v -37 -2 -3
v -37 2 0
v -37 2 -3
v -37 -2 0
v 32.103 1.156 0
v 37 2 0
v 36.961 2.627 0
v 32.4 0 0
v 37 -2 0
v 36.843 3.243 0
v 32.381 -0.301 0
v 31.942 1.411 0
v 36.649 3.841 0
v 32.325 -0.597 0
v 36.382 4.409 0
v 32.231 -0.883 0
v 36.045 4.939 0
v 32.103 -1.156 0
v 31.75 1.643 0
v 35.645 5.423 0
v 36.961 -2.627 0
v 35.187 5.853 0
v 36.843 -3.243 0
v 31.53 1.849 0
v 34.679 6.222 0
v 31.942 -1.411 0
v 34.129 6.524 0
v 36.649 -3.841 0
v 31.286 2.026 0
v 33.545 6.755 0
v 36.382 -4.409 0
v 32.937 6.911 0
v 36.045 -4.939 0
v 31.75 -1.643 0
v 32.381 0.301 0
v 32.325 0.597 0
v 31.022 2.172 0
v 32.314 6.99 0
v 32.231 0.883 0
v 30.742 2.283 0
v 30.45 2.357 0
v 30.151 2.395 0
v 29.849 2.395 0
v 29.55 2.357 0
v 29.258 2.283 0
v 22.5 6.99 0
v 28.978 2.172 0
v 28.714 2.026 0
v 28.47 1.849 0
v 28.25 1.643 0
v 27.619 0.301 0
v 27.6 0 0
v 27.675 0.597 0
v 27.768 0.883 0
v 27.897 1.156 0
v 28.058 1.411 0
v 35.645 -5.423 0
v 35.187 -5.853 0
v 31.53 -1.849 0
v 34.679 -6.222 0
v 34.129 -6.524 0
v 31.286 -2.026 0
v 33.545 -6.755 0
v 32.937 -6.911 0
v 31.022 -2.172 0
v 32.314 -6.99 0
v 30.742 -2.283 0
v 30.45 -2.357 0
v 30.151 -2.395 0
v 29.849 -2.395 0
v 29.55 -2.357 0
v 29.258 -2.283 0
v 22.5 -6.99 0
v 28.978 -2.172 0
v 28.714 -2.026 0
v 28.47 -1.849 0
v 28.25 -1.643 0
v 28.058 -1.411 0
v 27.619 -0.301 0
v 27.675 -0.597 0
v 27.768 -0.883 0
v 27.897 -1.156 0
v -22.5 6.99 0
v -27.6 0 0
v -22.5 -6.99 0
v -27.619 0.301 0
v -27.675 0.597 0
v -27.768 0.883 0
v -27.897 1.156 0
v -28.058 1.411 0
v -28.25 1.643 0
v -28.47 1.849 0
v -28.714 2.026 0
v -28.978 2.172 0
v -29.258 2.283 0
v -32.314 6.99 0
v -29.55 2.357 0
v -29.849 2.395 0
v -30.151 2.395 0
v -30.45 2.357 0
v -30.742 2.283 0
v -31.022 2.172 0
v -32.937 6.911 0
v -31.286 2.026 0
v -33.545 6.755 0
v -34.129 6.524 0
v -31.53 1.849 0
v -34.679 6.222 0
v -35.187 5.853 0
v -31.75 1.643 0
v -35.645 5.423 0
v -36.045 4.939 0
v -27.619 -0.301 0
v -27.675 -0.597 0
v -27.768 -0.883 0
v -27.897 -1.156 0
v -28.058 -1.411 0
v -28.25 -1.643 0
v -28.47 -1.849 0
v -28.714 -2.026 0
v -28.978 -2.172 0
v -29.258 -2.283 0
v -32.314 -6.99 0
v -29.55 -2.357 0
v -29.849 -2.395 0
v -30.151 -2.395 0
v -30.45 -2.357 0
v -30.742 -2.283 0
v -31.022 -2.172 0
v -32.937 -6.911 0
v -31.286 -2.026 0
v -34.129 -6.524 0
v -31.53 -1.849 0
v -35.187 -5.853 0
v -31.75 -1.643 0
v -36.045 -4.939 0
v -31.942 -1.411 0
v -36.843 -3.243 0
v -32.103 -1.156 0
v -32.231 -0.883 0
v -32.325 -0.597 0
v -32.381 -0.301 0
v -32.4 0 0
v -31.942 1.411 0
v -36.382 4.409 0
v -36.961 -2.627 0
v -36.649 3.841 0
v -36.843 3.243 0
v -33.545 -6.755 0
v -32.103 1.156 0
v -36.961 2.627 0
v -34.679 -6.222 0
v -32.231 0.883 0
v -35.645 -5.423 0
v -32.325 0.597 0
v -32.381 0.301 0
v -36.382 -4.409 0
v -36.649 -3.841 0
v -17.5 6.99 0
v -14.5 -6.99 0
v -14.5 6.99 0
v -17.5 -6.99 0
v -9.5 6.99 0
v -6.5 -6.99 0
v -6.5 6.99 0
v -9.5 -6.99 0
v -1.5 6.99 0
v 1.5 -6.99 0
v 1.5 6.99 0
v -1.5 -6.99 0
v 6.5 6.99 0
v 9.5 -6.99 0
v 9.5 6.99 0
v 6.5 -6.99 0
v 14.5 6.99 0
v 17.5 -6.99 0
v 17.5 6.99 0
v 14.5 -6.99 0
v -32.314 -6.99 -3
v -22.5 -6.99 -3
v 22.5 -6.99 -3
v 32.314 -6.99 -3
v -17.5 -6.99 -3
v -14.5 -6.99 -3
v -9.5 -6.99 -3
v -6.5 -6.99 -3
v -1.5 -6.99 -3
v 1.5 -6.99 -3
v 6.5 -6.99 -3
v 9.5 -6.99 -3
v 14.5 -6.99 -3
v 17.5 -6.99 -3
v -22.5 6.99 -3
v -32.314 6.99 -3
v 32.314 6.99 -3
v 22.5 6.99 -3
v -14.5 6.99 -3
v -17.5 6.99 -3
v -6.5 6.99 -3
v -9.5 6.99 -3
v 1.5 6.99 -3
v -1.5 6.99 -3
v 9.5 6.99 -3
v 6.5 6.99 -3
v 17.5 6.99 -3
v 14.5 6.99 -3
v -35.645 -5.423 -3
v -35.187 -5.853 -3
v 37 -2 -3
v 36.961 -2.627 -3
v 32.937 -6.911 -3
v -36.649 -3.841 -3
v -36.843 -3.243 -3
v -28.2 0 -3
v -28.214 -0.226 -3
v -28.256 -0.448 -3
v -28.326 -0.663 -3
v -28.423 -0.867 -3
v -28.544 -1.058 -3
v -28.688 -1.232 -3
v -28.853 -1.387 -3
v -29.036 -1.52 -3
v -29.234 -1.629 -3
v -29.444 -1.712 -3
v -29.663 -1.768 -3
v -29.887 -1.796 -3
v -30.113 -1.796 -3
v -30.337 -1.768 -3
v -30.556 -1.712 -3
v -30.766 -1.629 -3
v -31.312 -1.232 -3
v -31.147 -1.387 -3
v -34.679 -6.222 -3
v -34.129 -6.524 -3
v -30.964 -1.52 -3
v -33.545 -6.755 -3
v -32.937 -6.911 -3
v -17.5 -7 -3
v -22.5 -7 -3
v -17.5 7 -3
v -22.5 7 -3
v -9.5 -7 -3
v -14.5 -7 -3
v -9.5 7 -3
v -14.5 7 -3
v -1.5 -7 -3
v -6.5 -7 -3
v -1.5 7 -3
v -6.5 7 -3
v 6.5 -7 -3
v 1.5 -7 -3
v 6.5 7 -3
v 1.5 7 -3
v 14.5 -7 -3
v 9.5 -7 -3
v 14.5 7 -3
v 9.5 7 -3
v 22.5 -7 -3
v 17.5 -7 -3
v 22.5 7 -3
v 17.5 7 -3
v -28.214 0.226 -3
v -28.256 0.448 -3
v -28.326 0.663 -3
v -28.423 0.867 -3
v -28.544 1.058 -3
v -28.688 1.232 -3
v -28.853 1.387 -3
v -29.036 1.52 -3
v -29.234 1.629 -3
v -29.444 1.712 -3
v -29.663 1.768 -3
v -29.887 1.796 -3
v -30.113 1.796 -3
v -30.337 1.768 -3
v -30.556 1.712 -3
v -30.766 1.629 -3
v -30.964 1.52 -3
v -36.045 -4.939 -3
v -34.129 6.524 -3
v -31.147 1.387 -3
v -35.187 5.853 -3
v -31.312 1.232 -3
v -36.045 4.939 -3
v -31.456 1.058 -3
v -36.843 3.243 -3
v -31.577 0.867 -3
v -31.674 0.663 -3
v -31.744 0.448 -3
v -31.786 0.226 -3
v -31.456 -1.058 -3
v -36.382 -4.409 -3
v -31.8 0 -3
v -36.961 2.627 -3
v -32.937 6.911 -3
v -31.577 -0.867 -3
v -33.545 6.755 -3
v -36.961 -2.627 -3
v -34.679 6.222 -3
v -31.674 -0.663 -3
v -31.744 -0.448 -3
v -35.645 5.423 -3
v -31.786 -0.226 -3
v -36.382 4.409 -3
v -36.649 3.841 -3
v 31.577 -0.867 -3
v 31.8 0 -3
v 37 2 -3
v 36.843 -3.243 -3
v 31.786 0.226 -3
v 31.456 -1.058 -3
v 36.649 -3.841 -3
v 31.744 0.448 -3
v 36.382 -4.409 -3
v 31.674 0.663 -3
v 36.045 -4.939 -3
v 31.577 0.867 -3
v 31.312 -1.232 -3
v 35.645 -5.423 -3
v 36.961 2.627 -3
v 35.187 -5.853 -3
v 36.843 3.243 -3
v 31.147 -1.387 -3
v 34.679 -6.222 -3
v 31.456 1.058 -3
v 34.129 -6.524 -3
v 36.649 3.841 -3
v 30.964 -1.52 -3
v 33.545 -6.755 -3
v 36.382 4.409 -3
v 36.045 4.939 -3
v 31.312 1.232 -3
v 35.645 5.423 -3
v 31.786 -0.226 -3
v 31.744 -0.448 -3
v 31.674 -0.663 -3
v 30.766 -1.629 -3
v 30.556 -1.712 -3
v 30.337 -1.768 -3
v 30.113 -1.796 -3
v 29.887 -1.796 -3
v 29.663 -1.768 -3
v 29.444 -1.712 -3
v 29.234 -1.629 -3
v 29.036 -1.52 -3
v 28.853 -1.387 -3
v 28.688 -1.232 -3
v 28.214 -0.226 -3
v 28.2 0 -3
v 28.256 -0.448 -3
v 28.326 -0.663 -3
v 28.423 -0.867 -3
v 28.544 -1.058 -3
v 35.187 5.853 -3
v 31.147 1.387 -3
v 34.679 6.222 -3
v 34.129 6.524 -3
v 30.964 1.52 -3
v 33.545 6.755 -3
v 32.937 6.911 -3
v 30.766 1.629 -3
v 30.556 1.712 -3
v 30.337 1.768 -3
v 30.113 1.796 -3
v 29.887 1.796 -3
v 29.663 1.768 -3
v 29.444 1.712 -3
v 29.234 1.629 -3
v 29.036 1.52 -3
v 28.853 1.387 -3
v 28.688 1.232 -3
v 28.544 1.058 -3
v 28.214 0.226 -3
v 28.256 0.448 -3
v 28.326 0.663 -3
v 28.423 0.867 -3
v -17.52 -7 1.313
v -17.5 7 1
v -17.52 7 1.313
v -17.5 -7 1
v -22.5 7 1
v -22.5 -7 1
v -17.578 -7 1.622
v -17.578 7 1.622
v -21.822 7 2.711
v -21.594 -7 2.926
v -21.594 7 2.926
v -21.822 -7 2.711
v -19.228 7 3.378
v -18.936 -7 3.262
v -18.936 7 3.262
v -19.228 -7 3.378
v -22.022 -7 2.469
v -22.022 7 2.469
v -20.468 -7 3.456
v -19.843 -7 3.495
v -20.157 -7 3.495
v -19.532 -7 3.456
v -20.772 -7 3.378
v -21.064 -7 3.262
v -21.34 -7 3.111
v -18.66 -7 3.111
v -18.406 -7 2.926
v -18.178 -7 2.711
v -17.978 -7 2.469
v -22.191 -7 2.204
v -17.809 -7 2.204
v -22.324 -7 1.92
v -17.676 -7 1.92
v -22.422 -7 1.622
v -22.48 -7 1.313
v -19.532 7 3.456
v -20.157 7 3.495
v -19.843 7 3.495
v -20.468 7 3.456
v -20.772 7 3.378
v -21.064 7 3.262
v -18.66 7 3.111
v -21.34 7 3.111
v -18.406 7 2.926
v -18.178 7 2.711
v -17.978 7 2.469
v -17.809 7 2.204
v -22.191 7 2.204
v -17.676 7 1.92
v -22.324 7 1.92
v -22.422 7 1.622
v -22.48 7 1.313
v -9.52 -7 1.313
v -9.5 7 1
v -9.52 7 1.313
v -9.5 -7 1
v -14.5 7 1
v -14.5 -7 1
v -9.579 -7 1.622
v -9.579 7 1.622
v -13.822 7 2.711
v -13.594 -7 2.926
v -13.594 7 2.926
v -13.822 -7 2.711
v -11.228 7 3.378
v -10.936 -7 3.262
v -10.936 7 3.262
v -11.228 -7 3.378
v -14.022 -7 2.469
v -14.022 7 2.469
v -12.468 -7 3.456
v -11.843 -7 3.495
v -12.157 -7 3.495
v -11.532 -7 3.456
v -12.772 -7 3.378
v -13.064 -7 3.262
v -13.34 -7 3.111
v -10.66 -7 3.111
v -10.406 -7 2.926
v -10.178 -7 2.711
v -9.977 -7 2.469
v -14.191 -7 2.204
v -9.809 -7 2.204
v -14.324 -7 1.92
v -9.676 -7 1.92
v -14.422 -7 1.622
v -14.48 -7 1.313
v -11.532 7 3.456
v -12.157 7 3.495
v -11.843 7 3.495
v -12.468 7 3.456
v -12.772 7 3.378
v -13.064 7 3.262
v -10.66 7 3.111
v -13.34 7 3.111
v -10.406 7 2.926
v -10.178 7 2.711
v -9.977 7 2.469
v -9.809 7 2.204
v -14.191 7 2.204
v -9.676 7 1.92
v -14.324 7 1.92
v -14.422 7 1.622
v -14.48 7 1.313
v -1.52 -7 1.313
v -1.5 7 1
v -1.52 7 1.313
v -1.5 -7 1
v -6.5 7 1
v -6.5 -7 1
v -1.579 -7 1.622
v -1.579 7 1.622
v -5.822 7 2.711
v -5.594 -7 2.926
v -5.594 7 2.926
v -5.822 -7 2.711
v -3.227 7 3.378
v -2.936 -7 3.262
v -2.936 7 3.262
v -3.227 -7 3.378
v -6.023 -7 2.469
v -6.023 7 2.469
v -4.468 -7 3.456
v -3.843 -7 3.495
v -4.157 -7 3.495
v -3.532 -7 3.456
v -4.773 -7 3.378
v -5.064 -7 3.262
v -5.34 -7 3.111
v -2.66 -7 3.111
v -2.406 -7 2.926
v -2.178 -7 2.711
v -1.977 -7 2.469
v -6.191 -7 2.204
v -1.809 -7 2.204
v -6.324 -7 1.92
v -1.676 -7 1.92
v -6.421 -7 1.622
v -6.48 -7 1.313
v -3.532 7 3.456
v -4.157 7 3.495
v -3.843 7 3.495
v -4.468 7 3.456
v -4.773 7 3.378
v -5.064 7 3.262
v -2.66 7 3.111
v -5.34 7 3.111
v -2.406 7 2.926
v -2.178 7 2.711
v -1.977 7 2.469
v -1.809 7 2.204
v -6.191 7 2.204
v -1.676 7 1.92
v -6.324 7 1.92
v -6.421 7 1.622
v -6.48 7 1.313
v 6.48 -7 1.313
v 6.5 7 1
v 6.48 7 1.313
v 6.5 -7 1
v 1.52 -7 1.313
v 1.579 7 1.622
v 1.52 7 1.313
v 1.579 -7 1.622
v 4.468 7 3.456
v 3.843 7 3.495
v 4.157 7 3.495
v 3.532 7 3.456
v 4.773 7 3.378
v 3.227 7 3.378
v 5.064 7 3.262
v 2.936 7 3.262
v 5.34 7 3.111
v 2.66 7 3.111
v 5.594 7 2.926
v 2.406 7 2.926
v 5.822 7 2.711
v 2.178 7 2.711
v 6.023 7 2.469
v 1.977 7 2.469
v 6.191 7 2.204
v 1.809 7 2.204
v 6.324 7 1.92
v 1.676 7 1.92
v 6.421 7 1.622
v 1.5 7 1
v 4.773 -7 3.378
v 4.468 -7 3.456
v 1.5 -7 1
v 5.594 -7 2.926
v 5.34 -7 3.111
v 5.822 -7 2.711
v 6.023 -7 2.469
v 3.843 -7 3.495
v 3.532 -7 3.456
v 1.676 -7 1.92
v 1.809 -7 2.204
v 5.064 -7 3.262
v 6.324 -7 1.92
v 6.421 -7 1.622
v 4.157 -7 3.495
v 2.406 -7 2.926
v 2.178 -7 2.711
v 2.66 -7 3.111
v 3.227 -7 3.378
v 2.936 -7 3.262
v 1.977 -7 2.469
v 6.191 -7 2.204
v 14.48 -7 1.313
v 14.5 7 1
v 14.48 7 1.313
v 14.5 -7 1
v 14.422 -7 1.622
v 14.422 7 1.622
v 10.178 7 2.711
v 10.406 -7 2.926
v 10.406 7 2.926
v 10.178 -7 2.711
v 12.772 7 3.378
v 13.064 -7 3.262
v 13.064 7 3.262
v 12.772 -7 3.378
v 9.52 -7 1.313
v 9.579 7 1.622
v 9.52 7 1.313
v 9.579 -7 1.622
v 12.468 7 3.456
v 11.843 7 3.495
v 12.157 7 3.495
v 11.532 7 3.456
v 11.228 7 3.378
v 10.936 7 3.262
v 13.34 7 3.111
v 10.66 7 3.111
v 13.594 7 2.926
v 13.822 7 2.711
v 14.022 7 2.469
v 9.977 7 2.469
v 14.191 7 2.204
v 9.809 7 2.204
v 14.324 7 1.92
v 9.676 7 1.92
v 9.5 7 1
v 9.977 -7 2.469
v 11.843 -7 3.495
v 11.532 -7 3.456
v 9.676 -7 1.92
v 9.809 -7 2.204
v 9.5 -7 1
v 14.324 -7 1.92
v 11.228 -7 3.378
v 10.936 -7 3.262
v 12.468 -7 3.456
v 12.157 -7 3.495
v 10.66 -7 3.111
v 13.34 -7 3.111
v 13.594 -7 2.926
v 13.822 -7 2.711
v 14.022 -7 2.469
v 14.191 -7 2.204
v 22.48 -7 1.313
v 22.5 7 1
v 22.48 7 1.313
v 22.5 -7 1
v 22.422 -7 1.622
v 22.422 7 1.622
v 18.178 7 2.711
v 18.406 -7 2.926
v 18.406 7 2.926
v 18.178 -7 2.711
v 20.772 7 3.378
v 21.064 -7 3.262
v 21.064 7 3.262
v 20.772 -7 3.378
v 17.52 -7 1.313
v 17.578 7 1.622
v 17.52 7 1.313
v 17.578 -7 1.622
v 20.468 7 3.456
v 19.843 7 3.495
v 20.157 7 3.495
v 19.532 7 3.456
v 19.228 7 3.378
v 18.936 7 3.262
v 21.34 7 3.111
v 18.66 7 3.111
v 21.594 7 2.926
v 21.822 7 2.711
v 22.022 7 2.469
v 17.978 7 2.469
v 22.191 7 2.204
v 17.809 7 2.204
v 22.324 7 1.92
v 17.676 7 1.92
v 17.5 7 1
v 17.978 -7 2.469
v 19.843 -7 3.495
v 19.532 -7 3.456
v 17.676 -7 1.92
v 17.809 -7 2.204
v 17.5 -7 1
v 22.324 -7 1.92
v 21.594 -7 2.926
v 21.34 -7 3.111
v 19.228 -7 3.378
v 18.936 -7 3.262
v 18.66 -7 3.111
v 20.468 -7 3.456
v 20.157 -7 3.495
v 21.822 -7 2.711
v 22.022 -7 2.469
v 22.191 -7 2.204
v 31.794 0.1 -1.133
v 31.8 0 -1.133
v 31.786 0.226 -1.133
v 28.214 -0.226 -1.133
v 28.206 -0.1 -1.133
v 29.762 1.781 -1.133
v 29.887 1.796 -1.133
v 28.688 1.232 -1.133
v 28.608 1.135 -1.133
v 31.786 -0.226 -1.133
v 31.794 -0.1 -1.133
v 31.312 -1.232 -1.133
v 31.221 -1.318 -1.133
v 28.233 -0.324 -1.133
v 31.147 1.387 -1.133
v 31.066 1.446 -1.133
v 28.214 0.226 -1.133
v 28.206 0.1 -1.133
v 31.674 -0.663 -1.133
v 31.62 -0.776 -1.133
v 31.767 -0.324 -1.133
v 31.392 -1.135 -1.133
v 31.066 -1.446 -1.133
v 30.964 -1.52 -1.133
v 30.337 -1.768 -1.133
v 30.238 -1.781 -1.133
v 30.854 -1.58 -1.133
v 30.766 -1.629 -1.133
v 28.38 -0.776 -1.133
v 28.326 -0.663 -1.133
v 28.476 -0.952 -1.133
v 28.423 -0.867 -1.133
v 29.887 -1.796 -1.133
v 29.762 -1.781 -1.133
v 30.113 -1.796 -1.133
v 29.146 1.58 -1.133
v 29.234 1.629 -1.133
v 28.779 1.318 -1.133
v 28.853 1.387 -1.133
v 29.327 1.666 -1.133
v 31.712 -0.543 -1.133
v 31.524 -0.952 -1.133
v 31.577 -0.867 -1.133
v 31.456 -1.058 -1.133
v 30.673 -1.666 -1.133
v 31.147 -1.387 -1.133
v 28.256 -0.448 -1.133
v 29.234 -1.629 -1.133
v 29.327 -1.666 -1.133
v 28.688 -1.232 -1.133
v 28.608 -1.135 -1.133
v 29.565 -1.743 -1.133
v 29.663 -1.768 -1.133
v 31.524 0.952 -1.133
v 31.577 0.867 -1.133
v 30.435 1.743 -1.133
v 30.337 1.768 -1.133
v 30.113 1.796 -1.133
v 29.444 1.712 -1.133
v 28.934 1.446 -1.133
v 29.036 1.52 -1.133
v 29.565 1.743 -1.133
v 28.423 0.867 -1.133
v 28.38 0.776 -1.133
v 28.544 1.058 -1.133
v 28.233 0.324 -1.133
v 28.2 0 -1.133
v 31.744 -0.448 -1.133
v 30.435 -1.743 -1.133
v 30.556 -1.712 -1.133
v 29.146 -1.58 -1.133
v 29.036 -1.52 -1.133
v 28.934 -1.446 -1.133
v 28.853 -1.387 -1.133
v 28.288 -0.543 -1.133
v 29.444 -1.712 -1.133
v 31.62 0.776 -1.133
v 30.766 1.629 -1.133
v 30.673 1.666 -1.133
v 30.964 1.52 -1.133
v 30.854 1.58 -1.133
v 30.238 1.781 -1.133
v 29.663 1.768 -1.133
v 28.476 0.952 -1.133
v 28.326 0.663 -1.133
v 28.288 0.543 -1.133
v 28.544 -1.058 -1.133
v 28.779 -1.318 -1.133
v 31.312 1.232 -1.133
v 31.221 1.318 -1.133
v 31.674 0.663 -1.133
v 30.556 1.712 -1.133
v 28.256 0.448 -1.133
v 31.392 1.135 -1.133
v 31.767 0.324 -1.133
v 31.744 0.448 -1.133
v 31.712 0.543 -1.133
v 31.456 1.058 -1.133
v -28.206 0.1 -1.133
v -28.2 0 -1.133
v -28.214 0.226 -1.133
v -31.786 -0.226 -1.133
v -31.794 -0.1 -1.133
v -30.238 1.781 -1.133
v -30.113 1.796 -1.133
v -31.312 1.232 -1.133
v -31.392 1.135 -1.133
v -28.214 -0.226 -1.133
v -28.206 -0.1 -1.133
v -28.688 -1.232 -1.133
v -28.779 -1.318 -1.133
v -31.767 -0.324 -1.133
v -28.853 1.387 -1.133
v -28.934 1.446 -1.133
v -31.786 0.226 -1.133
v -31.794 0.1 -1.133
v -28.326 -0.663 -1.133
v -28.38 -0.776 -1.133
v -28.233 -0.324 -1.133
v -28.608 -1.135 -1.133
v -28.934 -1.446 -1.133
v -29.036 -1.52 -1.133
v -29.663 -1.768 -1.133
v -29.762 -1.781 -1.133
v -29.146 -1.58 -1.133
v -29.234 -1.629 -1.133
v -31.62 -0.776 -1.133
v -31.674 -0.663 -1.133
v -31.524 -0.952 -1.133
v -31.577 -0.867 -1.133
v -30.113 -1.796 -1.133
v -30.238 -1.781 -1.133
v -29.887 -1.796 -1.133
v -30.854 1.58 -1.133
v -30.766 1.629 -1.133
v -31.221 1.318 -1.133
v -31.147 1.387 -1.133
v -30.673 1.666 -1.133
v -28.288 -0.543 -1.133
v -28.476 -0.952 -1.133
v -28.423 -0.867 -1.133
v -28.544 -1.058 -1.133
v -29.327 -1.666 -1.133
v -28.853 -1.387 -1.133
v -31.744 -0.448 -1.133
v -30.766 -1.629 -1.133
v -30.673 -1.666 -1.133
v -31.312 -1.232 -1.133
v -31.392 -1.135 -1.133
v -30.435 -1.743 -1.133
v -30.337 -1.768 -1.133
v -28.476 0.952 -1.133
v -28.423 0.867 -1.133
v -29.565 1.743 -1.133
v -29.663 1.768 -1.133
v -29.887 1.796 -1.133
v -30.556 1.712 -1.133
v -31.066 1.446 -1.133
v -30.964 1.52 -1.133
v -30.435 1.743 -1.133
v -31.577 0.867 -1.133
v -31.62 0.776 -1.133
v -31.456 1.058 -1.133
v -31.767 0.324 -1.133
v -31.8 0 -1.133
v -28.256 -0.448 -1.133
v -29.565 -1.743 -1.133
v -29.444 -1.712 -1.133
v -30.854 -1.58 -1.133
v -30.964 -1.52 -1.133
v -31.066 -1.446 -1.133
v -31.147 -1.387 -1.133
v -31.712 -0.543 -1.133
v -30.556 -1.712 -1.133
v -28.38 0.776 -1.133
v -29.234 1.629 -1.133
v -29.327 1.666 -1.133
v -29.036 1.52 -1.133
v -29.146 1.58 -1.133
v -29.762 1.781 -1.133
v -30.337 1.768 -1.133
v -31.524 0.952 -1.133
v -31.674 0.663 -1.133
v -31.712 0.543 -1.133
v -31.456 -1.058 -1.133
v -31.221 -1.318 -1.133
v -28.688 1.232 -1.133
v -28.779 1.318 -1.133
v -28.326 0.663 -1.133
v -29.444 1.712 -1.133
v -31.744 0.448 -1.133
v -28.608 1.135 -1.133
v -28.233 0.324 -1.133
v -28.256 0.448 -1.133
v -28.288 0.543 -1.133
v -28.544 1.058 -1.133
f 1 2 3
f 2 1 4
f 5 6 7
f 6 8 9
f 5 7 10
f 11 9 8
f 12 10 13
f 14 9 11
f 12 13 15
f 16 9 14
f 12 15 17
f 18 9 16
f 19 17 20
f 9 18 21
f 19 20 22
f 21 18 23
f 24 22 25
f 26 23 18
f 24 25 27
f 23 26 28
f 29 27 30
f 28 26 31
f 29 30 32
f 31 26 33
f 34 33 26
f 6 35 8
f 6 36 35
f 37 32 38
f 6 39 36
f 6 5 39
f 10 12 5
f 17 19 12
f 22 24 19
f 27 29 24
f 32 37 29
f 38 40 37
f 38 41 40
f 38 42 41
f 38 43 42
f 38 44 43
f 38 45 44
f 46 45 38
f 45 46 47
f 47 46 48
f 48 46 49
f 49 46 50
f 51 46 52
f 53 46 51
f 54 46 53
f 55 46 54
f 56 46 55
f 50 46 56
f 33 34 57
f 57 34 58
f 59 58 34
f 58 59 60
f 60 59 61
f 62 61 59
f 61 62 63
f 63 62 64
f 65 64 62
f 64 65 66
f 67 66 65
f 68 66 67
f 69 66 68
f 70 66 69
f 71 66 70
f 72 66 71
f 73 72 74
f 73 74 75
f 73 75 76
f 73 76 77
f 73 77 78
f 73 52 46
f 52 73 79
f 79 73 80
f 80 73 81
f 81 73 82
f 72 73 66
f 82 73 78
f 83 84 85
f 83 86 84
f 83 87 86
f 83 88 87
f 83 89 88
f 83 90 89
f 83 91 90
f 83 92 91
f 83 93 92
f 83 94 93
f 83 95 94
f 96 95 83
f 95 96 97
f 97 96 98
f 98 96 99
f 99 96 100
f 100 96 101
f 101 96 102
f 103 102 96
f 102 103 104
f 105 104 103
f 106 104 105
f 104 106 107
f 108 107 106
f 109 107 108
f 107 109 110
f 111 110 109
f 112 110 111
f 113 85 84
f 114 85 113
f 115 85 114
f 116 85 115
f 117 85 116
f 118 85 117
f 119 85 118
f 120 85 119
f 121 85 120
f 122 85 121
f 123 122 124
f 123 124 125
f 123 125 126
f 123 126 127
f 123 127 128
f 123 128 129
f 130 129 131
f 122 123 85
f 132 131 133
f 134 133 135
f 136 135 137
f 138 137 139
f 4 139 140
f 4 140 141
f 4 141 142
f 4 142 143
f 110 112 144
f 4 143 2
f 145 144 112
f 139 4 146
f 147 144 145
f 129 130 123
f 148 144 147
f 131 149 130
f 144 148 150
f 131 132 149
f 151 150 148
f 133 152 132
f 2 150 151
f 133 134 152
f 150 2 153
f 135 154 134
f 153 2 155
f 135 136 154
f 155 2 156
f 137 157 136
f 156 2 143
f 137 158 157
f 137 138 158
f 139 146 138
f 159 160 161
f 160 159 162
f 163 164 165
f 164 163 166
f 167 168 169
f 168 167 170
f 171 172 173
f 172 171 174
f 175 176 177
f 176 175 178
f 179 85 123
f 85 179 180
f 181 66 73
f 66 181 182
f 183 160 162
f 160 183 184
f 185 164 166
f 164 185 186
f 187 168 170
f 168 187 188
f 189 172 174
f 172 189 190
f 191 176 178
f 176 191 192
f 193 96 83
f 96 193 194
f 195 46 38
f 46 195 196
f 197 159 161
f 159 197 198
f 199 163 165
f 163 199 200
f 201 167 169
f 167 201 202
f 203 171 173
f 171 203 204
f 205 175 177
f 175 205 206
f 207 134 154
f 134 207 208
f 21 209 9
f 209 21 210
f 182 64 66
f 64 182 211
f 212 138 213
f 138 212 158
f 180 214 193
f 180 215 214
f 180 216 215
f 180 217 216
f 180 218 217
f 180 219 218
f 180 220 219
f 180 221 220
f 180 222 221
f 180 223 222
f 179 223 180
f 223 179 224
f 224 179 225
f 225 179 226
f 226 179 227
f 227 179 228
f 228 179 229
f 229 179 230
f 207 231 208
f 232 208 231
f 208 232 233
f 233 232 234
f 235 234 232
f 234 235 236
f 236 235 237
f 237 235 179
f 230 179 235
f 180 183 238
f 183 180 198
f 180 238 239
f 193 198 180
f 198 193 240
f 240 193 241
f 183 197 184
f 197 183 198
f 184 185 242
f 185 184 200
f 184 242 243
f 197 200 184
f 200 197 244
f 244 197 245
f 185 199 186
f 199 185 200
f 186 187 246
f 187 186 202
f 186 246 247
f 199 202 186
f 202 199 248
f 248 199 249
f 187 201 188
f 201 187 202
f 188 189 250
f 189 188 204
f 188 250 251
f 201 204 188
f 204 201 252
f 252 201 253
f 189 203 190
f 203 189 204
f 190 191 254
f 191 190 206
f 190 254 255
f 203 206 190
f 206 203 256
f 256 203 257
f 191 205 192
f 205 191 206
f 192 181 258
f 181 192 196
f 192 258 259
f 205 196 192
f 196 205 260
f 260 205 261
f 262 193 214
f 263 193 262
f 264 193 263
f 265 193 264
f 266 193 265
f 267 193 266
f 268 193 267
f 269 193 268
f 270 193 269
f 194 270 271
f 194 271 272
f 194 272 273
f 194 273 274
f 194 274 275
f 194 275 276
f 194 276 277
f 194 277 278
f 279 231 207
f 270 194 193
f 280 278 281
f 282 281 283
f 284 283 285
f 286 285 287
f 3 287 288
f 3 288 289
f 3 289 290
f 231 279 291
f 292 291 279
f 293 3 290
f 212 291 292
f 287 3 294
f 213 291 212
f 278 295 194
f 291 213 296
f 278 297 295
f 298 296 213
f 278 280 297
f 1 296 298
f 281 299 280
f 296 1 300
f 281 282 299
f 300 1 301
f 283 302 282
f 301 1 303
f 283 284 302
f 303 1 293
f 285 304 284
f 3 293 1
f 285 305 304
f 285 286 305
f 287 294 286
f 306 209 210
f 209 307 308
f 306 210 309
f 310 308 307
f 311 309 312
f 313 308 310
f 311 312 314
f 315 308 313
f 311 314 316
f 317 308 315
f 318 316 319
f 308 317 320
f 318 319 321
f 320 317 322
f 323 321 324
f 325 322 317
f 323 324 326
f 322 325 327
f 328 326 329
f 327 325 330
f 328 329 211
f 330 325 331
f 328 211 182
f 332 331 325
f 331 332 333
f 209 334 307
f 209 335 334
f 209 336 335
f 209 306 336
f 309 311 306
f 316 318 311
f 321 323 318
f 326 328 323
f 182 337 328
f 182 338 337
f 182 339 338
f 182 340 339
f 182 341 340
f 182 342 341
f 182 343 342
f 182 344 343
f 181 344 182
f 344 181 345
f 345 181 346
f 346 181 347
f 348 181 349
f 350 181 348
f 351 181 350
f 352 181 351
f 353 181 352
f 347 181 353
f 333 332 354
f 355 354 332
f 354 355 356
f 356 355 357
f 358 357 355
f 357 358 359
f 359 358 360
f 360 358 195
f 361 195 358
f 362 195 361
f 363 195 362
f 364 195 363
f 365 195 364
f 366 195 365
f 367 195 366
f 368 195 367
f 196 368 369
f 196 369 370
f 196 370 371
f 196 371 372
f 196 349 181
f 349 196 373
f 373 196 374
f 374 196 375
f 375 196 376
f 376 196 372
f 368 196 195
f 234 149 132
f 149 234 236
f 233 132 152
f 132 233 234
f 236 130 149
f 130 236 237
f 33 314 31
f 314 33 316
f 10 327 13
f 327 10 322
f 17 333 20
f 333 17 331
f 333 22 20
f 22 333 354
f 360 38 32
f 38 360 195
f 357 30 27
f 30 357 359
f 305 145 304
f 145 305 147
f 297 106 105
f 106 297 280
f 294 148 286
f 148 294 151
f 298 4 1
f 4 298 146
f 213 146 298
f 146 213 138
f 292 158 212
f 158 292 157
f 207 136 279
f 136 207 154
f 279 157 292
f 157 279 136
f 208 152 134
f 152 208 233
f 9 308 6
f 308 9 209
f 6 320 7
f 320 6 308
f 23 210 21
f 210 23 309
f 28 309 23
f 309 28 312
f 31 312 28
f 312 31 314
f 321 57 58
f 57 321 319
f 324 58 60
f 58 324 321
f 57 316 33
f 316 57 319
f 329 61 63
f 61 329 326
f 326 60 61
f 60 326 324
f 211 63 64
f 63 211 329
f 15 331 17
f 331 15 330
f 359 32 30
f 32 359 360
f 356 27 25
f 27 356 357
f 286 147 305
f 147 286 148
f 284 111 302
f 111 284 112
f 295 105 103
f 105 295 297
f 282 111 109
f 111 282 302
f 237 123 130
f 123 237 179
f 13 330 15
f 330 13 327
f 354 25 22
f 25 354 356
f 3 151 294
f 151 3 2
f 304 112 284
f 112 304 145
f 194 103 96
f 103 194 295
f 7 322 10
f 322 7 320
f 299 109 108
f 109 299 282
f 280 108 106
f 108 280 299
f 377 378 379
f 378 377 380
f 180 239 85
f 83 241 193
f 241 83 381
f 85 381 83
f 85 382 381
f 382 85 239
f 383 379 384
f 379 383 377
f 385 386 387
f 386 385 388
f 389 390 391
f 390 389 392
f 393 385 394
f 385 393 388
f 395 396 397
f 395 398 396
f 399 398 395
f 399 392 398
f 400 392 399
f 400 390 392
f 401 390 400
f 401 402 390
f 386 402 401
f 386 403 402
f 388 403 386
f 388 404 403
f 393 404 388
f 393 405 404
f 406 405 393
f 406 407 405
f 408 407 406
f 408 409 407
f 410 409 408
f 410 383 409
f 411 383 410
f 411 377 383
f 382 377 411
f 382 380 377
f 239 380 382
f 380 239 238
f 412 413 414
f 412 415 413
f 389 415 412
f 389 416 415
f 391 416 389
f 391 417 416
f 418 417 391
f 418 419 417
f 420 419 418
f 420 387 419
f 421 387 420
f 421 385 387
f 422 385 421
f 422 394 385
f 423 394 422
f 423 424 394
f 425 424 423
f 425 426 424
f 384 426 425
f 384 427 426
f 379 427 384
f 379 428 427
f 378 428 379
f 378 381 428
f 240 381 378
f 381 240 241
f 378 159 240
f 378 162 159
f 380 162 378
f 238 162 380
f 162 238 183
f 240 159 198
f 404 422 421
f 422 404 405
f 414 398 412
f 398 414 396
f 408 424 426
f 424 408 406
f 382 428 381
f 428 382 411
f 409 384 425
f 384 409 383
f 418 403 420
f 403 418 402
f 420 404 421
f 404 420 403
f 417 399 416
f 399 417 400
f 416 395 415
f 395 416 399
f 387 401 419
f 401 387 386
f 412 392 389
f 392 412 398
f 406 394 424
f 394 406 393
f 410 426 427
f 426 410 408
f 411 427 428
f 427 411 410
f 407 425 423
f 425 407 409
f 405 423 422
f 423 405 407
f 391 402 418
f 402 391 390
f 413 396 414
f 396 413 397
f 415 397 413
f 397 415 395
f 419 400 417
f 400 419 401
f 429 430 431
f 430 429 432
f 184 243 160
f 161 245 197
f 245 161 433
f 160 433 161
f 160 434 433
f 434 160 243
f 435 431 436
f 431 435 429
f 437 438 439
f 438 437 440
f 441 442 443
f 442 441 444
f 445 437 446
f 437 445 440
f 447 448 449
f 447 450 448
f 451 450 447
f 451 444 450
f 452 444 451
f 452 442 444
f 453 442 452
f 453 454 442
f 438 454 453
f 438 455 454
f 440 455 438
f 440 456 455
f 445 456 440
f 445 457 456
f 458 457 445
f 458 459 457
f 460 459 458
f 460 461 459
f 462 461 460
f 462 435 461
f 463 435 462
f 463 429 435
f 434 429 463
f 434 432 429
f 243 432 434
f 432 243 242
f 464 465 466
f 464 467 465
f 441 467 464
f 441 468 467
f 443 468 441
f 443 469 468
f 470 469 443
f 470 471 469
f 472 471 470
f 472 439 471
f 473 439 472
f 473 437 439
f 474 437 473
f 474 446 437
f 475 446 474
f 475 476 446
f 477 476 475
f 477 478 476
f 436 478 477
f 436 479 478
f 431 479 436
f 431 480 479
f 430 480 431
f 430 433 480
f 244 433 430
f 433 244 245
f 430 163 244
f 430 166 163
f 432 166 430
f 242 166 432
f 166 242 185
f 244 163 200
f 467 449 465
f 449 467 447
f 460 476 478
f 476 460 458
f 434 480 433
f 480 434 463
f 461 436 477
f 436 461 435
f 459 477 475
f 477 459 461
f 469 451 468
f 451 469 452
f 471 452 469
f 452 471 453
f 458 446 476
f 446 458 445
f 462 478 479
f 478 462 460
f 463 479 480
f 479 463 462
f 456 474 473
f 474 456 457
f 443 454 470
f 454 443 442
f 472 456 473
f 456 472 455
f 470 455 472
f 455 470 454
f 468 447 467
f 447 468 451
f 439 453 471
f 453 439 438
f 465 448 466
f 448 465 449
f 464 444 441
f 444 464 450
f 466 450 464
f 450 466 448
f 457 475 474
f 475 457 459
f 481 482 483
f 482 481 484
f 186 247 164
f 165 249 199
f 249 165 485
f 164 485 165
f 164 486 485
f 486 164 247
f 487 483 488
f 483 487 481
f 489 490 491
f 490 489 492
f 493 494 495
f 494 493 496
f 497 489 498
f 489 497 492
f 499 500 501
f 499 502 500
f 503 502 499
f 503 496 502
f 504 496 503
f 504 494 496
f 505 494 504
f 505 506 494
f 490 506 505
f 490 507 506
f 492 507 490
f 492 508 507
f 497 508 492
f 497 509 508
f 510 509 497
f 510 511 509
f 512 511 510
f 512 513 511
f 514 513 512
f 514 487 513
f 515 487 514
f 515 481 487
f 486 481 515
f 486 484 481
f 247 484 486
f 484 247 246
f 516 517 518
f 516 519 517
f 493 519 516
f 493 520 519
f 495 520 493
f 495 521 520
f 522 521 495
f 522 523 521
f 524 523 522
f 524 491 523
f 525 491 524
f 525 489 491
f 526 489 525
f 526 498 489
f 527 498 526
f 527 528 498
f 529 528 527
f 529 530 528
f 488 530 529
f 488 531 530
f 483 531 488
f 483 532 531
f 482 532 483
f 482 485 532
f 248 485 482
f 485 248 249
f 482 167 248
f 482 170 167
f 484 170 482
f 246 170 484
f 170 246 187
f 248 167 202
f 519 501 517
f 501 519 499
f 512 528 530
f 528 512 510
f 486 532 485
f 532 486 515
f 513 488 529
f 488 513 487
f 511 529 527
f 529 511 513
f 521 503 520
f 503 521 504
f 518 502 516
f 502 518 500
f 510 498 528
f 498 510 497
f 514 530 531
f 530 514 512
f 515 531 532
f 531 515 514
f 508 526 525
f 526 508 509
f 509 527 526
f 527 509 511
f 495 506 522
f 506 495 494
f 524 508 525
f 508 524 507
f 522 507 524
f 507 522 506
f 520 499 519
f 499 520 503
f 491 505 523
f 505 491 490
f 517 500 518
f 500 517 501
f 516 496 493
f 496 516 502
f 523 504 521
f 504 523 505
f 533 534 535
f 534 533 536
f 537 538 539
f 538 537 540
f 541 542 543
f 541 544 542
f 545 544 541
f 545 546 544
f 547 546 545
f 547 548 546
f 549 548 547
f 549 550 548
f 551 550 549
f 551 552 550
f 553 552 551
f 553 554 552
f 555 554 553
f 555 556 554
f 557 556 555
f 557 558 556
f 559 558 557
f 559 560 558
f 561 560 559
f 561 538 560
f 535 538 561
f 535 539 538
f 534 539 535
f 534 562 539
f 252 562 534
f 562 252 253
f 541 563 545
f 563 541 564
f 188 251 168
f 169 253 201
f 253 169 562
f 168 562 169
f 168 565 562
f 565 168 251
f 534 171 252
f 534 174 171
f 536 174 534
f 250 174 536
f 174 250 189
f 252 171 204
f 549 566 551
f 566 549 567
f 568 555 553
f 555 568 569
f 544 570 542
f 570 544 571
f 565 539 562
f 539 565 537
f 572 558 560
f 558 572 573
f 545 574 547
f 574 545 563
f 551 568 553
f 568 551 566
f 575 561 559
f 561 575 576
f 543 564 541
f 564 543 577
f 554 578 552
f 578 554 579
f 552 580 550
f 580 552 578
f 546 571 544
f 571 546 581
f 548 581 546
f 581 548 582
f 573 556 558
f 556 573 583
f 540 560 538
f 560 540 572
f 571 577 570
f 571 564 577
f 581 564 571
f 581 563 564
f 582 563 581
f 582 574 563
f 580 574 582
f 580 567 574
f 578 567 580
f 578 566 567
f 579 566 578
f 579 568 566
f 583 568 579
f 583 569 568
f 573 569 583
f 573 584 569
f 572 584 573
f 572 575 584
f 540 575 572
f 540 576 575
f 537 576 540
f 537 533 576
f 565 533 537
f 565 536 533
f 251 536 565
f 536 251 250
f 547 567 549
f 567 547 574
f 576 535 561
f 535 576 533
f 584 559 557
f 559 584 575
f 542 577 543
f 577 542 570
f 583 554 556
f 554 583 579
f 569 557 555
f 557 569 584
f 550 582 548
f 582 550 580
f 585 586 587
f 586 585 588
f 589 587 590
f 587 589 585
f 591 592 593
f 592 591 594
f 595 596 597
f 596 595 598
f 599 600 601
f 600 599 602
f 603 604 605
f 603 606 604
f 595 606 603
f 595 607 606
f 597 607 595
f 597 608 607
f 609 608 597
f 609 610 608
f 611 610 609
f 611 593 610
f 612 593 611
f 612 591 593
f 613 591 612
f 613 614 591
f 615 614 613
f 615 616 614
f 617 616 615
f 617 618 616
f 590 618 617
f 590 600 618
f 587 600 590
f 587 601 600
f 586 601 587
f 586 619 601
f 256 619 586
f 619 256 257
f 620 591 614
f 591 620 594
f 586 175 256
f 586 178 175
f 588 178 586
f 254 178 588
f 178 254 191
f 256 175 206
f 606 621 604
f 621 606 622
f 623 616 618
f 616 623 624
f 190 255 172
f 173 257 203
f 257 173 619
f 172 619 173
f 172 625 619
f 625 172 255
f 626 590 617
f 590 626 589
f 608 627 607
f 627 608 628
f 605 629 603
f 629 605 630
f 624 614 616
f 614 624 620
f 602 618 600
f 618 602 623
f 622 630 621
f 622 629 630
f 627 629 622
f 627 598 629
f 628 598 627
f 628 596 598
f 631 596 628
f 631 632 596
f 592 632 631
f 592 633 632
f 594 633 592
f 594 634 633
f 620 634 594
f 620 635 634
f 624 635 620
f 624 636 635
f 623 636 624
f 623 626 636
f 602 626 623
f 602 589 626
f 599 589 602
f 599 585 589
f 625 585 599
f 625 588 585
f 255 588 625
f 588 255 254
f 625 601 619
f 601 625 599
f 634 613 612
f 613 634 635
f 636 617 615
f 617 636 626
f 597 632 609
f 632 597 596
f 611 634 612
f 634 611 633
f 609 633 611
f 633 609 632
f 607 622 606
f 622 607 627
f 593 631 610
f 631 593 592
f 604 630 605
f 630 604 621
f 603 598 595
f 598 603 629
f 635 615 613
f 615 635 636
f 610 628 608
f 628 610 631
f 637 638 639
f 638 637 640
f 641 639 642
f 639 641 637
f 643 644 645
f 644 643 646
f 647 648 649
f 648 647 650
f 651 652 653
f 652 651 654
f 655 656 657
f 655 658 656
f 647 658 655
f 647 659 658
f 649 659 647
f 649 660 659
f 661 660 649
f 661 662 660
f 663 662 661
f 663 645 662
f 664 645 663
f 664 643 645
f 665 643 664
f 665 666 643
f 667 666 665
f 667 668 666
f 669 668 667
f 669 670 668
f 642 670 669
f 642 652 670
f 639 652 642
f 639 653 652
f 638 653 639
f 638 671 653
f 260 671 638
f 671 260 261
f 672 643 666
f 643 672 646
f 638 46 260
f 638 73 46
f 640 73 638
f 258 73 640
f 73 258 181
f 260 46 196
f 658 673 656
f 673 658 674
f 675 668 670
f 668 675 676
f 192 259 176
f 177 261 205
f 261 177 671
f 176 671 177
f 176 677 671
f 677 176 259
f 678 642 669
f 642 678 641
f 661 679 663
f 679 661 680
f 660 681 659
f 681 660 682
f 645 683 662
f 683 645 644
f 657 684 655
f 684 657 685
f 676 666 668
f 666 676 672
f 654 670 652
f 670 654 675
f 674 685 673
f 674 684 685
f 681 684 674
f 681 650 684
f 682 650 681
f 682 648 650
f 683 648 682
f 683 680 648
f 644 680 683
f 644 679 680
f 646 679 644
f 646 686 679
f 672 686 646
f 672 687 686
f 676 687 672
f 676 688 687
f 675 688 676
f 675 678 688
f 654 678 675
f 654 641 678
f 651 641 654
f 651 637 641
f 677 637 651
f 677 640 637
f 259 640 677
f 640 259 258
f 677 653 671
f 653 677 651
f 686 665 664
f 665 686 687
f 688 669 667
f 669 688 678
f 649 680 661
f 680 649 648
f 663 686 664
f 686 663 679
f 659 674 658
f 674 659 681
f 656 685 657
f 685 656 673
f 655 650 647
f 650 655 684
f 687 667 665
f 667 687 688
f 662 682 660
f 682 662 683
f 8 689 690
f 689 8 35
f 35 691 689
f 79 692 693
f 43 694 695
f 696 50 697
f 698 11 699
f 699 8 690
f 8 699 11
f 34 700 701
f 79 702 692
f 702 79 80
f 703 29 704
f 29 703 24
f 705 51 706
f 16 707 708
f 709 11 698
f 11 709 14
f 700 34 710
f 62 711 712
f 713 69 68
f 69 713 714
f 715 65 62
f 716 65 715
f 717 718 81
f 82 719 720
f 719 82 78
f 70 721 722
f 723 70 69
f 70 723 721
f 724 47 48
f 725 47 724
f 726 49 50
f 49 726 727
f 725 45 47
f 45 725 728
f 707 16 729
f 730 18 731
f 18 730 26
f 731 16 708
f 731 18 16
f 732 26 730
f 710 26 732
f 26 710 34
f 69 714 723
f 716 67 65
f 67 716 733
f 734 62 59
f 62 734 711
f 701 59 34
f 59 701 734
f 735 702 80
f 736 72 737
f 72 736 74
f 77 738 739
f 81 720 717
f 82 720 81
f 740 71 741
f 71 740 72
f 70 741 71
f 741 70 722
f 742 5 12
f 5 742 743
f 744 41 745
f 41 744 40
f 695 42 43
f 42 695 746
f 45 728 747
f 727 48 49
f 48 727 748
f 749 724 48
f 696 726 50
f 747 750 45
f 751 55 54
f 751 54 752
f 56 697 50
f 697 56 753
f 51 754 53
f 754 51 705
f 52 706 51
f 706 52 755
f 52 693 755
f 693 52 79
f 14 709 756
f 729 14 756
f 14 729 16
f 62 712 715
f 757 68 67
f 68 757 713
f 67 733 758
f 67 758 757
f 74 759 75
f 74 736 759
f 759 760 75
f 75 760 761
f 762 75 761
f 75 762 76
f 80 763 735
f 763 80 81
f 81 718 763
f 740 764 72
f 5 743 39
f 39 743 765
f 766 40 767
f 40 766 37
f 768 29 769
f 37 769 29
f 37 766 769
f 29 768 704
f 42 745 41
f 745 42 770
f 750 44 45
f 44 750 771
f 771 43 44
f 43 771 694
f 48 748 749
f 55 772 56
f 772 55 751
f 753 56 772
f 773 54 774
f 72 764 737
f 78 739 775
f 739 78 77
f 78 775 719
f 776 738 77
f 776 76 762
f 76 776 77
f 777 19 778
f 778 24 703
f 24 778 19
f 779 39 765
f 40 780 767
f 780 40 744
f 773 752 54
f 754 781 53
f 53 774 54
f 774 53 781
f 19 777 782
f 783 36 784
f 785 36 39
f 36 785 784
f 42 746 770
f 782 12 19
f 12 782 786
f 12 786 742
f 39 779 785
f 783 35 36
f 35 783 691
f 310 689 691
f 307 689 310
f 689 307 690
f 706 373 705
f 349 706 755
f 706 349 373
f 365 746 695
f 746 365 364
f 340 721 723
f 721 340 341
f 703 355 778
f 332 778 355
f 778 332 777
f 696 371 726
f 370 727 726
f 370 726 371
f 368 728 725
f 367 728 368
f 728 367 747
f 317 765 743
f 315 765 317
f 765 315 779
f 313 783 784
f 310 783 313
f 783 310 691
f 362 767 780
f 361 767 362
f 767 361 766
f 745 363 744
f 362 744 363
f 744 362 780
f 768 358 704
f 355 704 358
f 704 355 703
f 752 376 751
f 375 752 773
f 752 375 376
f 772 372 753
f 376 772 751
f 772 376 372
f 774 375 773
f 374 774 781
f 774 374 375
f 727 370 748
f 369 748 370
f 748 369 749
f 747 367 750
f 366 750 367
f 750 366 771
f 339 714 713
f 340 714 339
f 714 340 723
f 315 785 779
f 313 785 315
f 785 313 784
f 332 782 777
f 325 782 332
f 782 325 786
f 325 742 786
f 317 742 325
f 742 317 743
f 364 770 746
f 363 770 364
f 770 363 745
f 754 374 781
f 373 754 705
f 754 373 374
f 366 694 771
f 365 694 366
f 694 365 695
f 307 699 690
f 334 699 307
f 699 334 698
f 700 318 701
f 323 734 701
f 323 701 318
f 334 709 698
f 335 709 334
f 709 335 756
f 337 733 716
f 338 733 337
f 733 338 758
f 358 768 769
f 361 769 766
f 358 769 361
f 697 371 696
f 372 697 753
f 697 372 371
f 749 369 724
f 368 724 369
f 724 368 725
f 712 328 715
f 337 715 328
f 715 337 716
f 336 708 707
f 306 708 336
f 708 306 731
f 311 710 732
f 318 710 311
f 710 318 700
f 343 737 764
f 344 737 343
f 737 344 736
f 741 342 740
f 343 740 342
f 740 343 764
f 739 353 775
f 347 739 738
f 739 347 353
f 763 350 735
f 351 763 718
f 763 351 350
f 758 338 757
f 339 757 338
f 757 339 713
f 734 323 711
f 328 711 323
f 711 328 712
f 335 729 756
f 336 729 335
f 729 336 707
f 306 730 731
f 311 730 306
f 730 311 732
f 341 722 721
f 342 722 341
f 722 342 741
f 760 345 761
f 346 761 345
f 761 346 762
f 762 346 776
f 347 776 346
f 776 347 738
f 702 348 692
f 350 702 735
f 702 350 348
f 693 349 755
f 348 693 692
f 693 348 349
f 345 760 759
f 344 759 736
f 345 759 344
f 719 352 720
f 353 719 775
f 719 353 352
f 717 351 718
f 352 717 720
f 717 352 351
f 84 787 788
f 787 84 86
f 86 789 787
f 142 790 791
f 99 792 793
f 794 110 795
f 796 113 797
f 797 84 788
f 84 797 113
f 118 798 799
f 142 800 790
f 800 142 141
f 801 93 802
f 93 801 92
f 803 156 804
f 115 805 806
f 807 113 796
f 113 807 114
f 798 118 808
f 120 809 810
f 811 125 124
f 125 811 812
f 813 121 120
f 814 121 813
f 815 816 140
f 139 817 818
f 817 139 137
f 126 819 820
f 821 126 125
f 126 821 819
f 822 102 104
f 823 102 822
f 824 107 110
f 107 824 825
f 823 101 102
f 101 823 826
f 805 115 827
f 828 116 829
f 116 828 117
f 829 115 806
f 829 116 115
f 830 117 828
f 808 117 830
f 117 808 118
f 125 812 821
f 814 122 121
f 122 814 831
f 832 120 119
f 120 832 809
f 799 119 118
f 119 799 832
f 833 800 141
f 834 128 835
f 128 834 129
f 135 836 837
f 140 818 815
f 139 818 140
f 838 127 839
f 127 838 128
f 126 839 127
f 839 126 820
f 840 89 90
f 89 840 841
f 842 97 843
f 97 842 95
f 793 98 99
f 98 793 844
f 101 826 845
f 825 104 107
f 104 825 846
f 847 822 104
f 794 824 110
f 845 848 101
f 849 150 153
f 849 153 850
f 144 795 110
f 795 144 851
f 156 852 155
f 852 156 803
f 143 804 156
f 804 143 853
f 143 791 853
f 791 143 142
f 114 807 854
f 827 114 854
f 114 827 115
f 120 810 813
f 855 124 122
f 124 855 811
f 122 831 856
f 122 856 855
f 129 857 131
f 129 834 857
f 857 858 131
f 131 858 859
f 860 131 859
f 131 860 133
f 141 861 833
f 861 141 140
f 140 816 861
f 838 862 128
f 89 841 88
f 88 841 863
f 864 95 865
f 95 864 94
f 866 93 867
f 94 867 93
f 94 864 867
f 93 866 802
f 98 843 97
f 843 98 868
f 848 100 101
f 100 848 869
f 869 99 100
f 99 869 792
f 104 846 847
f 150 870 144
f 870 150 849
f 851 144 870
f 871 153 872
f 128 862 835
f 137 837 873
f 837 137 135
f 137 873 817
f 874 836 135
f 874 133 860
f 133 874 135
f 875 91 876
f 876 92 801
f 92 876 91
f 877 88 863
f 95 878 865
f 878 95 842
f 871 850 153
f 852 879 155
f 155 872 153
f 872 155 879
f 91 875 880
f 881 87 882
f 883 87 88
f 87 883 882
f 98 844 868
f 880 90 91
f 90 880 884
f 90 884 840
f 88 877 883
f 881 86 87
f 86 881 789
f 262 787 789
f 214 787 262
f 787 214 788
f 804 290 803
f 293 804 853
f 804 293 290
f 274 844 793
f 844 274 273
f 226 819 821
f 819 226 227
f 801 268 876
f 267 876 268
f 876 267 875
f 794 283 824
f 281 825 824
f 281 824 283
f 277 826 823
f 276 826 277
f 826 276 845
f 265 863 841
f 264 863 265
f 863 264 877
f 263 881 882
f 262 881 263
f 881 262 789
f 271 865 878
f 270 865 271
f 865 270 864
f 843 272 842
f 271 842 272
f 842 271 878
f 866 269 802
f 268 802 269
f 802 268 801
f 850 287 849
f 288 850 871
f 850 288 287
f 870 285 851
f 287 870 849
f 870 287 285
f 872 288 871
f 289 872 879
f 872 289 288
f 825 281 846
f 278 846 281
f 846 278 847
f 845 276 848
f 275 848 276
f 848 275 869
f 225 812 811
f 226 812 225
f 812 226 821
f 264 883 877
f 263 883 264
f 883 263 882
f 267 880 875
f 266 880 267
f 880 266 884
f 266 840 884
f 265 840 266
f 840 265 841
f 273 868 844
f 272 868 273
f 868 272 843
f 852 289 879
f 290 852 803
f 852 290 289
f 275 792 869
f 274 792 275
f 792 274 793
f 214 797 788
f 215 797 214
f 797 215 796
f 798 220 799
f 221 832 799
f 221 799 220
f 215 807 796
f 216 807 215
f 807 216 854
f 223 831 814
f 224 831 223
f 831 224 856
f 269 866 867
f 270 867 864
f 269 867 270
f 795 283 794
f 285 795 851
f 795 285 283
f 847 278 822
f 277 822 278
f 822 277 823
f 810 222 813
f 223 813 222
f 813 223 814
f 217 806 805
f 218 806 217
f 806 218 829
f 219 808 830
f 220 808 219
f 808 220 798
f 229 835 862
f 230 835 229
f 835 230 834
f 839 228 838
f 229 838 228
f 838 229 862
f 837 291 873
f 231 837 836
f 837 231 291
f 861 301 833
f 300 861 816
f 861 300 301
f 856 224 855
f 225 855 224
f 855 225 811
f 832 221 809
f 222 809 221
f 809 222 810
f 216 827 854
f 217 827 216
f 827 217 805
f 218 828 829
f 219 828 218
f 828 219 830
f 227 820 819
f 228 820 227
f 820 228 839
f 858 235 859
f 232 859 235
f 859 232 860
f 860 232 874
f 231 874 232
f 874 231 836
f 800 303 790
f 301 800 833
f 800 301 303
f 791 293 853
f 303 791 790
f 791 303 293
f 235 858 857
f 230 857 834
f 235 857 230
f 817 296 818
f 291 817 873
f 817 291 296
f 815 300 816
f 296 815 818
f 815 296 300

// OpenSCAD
$fn = 50;


difference() {
	union() {
		translate(v = [0, 0, -3]) {
			hull() {
				translate(v = [-32.0000000000, 2.0000000000, 0]) {
					cylinder(h = 3, r = 5);
				}
				translate(v = [32.0000000000, 2.0000000000, 0]) {
					cylinder(h = 3, r = 5);
				}
				translate(v = [-32.0000000000, -2.0000000000, 0]) {
					cylinder(h = 3, r = 5);
				}
				translate(v = [32.0000000000, -2.0000000000, 0]) {
					cylinder(h = 3, r = 5);
				}
			}
		}
		translate(v = [-20.0000000000, 7.0000000000, -1.5000000000]) {
			rotate(a = [90, 0, 0]) {
				hull() {
					translate(v = [-0.0000000000, 2.5000000000, 0]) {
						cylinder(h = 14, r = 2.5000000000);
					}
					translate(v = [0.0000000000, 2.5000000000, 0]) {
						cylinder(h = 14, r = 2.5000000000);
					}
					translate(v = [-0.0000000000, -2.5000000000, 0]) {
						cylinder(h = 14, r = 2.5000000000);
					}
					translate(v = [0.0000000000, -2.5000000000, 0]) {
						cylinder(h = 14, r = 2.5000000000);
					}
				}
			}
		}
		translate(v = [-12.0000000000, 7.0000000000, -1.5000000000]) {
			rotate(a = [90, 0, 0]) {
				hull() {
					translate(v = [-0.0000000000, 2.5000000000, 0]) {
						cylinder(h = 14, r = 2.5000000000);
					}
					translate(v = [0.0000000000, 2.5000000000, 0]) {
						cylinder(h = 14, r = 2.5000000000);
					}
					translate(v = [-0.0000000000, -2.5000000000, 0]) {
						cylinder(h = 14, r = 2.5000000000);
					}
					translate(v = [0.0000000000, -2.5000000000, 0]) {
						cylinder(h = 14, r = 2.5000000000);
					}
				}
			}
		}
		translate(v = [-4.0000000000, 7.0000000000, -1.5000000000]) {
			rotate(a = [90, 0, 0]) {
				hull() {
					translate(v = [-0.0000000000, 2.5000000000, 0]) {
						cylinder(h = 14, r = 2.5000000000);
					}
					translate(v = [0.0000000000, 2.5000000000, 0]) {
						cylinder(h = 14, r = 2.5000000000);
					}
					translate(v = [-0.0000000000, -2.5000000000, 0]) {
						cylinder(h = 14, r = 2.5000000000);
					}
					translate(v = [0.0000000000, -2.5000000000, 0]) {
						cylinder(h = 14, r = 2.5000000000);
					}
				}
			}
		}
		translate(v = [4.0000000000, 7.0000000000, -1.5000000000]) {
			rotate(a = [90, 0, 0]) {
				hull() {
					translate(v = [-0.0000000000, 2.5000000000, 0]) {
						cylinder(h = 14, r = 2.5000000000);
					}
					translate(v = [0.0000000000, 2.5000000000, 0]) {
						cylinder(h = 14, r = 2.5000000000);
					}
					translate(v = [-0.0000000000, -2.5000000000, 0]) {
						cylinder(h = 14, r = 2.5000000000);
					}
					translate(v = [0.0000000000, -2.5000000000, 0]) {
						cylinder(h = 14, r = 2.5000000000);
					}
				}
			}
		}
		translate(v = [12.0000000000, 7.0000000000, -1.5000000000]) {
			rotate(a = [90, 0, 0]) {
				hull() {
					translate(v = [-0.0000000000, 2.5000000000, 0]) {
						cylinder(h = 14, r = 2.5000000000);
					}
					translate(v = [0.0000000000, 2.5000000000, 0]) {
						cylinder(h = 14, r = 2.5000000000);
					}
					translate(v = [-0.0000000000, -2.5000000000, 0]) {
						cylinder(h = 14, r = 2.5000000000);
					}
					translate(v = [0.0000000000, -2.5000000000, 0]) {
						cylinder(h = 14, r = 2.5000000000);
					}
				}
			}
		}
		translate(v = [20.0000000000, 7.0000000000, -1.5000000000]) {
			rotate(a = [90, 0, 0]) {
				hull() {
					translate(v = [-0.0000000000, 2.5000000000, 0]) {
						cylinder(h = 14, r = 2.5000000000);
					}
					translate(v = [0.0000000000, 2.5000000000, 0]) {
						cylinder(h = 14, r = 2.5000000000);
					}
					translate(v = [-0.0000000000, -2.5000000000, 0]) {
						cylinder(h = 14, r = 2.5000000000);
					}
					translate(v = [0.0000000000, -2.5000000000, 0]) {
						cylinder(h = 14, r = 2.5000000000);
					}
				}
			}
		}
	}
	union() {
		translate(v = [30.0000000000, 0.0000000000, 0]) {
			rotate(a = [0, 0, 0]) {
				difference() {
					union() {
						translate(v = [0, 0, -1.7000000000]) {
							cylinder(h = 1.7000000000, r1 = 1.5000000000, r2 = 2.4000000000);
						}
						translate(v = [0, 0, -3.0000000000]) {
							cylinder(h = 3, r = 1.5000000000);
						}
						translate(v = [0, 0, -3.0000000000]) {
							cylinder(h = 3, r = 1.8000000000);
						}
						translate(v = [0, 0, -3.0000000000]) {
							cylinder(h = 3, r = 1.5000000000);
						}
					}
					union();
				}
			}
		}
		translate(v = [-30.0000000000, 0.0000000000, 0]) {
			rotate(a = [0, 0, 0]) {
				difference() {
					union() {
						translate(v = [0, 0, -1.7000000000]) {
							cylinder(h = 1.7000000000, r1 = 1.5000000000, r2 = 2.4000000000);
						}
						translate(v = [0, 0, -3.0000000000]) {
							cylinder(h = 3, r = 1.5000000000);
						}
						translate(v = [0, 0, -3.0000000000]) {
							cylinder(h = 3, r = 1.8000000000);
						}
						translate(v = [0, 0, -3.0000000000]) {
							cylinder(h = 3, r = 1.5000000000);
						}
					}
					union();
				}
			}
		}
		translate(v = [-250.0000000000, -250.0000000000, -503]) {
			cube(size = [500, 500, 500]);
		}
		translate(v = [-250.0000000000, -250.0000000000, -503]) {
			cube(size = [500, 500, 500]);
		}
		translate(v = [-250.0000000000, -250.0000000000, -503]) {
			cube(size = [500, 500, 500]);
		}
		translate(v = [-30.0000000000, 0.0000000000, -100.0000000000]) {
			cylinder(h = 200, r = 1.5000000000);
		}
		translate(v = [30.0000000000, 0.0000000000, -100.0000000000]) {
			cylinder(h = 200, r = 1.5000000000);
		}
		translate(v = [30.0000000000, 0.0000000000, -100.0000000000]) {
			cylinder(h = 200, r = 1.5000000000);
		}
		translate(v = [-30.0000000000, 0.0000000000, -100.0000000000]) {
			cylinder(h = 200, r = 1.5000000000);
		}
		translate(v = [30.0000000000, 0.0000000000, -100.0000000000]) {
			cylinder(h = 200, r = 1.5000000000);
		}
		translate(v = [-30.0000000000, 0.0000000000, -100.0000000000]) {
			cylinder(h = 200, r = 1.5000000000);
		}
		translate(v = [30.0000000000, 0.0000000000, -100.0000000000]) {
			cylinder(h = 200, r = 1.5000000000);
		}
		translate(v = [-30.0000000000, 0.0000000000, -100.0000000000]) {
			cylinder(h = 200, r = 1.5000000000);
		}
		translate(v = [30.0000000000, 0.0000000000, -100.0000000000]) {
			cylinder(h = 200, r = 1.5000000000);
		}
	}
}
